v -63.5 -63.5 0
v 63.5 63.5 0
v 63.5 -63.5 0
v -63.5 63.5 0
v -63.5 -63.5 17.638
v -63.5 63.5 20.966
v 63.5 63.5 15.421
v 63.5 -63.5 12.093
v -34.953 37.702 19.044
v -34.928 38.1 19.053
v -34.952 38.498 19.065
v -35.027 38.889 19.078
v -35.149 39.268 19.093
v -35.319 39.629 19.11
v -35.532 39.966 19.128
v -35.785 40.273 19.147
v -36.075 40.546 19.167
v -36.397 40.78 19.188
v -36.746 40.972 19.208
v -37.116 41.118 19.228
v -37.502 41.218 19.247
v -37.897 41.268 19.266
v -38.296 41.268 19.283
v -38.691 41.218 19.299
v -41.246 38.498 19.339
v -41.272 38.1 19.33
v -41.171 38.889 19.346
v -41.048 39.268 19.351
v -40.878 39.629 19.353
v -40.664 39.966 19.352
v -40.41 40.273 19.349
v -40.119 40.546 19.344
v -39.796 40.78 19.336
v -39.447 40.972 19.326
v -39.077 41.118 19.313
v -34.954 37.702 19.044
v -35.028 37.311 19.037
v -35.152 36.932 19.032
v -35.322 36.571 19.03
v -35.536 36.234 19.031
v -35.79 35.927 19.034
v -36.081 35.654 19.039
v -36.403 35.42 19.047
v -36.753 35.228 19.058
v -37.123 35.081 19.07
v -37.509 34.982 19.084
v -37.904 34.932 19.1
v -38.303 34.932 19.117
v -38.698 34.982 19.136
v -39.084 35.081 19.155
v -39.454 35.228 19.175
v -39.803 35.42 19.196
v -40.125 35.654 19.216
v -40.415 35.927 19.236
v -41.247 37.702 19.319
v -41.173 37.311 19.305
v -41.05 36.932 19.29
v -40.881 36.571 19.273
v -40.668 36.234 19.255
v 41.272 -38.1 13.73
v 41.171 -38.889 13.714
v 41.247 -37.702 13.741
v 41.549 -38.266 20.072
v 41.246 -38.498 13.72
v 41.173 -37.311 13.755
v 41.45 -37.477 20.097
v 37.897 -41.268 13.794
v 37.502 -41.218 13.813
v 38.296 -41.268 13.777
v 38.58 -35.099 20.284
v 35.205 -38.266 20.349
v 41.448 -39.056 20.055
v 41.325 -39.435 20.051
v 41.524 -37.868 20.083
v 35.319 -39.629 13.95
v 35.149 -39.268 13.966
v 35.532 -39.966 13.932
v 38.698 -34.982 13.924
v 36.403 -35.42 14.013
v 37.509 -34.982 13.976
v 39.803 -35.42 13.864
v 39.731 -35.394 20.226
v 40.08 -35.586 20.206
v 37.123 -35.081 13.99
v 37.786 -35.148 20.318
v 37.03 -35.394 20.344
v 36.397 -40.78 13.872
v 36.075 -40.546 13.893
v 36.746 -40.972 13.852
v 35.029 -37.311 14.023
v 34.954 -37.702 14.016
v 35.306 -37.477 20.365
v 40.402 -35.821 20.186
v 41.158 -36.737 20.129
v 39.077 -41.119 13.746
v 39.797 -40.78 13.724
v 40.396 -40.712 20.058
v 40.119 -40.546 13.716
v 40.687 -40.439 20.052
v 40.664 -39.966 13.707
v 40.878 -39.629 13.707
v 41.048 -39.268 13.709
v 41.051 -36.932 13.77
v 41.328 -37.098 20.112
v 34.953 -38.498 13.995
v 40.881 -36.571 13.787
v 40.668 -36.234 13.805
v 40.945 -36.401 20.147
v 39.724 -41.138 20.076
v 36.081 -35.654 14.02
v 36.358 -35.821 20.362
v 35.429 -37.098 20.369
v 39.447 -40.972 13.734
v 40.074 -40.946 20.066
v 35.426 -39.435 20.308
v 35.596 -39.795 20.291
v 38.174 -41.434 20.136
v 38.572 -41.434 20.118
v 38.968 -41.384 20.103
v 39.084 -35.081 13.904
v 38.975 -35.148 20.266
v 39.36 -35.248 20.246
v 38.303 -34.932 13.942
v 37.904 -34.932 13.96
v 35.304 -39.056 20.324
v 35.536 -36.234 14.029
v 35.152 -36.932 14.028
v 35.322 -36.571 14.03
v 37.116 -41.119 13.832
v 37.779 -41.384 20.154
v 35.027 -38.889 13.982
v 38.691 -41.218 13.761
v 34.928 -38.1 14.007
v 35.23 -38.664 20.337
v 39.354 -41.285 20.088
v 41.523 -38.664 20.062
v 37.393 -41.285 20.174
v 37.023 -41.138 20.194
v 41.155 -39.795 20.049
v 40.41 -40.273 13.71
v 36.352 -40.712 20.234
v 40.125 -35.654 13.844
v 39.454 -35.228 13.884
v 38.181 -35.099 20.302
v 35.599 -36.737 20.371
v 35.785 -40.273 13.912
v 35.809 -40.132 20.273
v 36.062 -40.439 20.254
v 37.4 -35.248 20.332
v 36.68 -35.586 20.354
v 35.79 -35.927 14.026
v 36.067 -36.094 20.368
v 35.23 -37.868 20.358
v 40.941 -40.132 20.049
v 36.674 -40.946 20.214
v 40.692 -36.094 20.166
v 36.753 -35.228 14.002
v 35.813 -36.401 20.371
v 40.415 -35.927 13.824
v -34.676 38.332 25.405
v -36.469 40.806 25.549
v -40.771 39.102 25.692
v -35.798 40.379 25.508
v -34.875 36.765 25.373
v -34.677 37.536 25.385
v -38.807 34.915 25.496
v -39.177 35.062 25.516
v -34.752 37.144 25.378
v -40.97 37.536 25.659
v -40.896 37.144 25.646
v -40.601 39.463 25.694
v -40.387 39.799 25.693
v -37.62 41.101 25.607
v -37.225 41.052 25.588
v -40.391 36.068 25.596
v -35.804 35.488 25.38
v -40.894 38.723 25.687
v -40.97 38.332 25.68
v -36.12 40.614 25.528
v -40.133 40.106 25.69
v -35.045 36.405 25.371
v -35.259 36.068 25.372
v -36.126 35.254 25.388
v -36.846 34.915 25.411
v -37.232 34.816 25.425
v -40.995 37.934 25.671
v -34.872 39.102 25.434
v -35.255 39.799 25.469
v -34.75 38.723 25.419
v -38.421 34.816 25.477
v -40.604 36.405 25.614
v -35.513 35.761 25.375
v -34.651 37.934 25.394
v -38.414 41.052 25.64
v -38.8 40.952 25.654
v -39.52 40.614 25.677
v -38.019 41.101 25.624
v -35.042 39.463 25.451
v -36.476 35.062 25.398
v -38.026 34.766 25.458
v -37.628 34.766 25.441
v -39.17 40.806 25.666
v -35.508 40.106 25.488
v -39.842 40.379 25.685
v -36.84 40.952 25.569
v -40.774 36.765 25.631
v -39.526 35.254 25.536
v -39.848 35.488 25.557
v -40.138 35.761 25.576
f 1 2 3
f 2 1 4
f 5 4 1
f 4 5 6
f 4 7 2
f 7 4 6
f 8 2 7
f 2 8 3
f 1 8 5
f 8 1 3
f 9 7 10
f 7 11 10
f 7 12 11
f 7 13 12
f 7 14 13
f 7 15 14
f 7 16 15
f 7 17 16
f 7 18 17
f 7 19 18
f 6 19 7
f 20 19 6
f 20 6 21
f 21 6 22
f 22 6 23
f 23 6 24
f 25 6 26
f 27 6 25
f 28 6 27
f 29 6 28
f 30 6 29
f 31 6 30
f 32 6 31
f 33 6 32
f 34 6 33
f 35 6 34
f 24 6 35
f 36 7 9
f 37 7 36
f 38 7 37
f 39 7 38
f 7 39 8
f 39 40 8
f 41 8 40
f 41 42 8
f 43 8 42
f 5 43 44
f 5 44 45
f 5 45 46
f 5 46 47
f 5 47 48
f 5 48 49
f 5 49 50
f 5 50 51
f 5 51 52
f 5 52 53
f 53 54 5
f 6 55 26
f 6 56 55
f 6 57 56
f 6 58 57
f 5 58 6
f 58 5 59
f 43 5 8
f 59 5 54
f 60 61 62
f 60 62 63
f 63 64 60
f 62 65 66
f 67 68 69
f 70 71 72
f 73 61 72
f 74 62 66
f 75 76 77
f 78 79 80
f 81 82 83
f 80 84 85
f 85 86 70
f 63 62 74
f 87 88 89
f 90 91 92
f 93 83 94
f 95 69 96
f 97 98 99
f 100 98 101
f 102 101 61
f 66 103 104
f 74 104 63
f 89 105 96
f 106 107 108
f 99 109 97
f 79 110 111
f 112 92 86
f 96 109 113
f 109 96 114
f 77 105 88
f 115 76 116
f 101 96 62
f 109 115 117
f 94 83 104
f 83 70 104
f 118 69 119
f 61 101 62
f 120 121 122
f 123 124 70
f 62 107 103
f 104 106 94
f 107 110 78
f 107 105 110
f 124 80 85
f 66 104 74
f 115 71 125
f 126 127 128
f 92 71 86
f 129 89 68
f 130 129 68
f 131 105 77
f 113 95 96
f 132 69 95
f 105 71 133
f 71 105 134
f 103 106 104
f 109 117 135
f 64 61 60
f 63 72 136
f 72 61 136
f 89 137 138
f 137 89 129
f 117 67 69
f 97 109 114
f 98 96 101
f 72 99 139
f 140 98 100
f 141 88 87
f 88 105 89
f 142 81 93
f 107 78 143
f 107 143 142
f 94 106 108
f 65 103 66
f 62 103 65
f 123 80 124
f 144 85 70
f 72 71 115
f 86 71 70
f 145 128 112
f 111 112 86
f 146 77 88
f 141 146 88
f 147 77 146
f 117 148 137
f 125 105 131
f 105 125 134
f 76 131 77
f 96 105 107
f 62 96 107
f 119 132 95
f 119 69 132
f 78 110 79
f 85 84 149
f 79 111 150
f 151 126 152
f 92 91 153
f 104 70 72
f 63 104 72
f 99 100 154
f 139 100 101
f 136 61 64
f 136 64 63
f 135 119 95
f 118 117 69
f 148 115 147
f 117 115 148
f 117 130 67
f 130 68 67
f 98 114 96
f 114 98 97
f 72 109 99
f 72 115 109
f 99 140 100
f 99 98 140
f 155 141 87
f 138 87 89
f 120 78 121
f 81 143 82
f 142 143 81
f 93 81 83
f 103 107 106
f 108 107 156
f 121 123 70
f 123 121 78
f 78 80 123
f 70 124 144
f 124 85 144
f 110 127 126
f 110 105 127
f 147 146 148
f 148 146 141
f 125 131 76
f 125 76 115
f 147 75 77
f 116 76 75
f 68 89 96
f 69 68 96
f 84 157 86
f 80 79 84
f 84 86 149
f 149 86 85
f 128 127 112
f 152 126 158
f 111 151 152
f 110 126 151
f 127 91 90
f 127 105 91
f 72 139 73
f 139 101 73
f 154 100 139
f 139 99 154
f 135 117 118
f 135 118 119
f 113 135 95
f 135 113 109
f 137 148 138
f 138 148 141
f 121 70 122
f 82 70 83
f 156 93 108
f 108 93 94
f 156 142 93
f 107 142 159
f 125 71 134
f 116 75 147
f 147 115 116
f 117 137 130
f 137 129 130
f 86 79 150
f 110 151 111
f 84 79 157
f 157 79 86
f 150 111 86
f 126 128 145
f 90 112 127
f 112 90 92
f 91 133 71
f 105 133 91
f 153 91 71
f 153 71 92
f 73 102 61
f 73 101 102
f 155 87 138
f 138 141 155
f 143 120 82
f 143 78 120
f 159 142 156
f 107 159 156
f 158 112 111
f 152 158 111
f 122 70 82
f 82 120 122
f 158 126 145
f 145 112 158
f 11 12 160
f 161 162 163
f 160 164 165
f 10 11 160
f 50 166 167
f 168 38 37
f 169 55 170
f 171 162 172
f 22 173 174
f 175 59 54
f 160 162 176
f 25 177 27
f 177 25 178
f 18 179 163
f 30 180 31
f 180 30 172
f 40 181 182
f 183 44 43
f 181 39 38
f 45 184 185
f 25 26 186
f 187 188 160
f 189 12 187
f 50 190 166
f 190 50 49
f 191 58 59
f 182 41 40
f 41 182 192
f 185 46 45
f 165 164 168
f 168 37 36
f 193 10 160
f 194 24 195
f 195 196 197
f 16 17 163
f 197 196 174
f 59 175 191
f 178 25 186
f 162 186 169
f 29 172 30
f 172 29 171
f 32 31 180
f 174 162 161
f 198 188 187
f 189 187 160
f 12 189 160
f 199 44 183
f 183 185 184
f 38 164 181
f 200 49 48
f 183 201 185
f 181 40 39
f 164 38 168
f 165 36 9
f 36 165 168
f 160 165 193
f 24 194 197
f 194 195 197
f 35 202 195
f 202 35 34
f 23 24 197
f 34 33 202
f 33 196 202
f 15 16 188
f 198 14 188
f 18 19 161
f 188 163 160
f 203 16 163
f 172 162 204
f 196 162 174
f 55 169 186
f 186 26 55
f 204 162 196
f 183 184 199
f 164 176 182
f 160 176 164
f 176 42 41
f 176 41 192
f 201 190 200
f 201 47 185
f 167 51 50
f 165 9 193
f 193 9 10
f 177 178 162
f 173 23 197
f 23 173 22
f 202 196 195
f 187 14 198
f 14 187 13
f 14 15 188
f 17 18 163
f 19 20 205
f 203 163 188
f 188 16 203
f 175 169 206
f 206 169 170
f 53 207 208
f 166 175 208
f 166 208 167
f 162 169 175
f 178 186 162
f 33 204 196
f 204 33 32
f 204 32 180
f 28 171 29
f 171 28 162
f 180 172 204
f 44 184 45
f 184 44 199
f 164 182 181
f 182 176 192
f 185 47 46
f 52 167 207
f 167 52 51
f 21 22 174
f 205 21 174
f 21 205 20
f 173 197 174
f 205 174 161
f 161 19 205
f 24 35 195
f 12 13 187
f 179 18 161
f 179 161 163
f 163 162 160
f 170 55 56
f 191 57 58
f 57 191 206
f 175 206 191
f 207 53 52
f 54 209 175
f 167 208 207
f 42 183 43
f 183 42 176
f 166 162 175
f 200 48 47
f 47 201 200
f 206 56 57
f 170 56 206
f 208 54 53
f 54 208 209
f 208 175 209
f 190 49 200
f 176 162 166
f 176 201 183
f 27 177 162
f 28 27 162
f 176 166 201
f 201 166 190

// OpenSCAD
// Interlocking QA plate, v1.
//
// This code builds a 3D model that can be 3D printed or machined.
//

function in_to_mm(x) = x * 25.4;

x_slope = 1.5; // Degrees.
y_slope = 2.5; // Degrees.

base_width = in_to_mm(10.0);
base_height = in_to_mm(1.0);

// The drop at the centre of the cube (along [0,0,1]) due to the x and y slopes.
z_drop = (base_width * 0.5) * tan(x_slope) 
       + (base_width * 0.5) * tan(y_slope);

union() {

difference() {
    // The base cube.
    translate([0, 0, 0])
      linear_extrude(height = base_height)
          square([base_width*0.5, base_width*0.5], center = true);

    // The part at the top being subtracted off.
    translate([0, 0, base_height - z_drop])
      rotate([x_slope, y_slope, 0.0])
        linear_extrude(height = base_height*10.0)
          square([base_width*10.0, base_width*10.0], center = true);

}

translate([0, 0, base_height - z_drop
                             - ( in_to_mm(1.5) * tan(x_slope)
                               + in_to_mm(1.5) * tan(y_slope) ) ])
translate([in_to_mm(1.5), -in_to_mm(1.5)])
rotate([x_slope, y_slope, 0.0])
linear_extrude(height = in_to_mm(0.25))
circle(d=in_to_mm(0.25), $fn=50);

translate([0, 0, base_height - z_drop
                             + ( in_to_mm(1.5) * tan(x_slope)
                               + in_to_mm(1.5) * tan(y_slope) ) ])
translate([-in_to_mm(1.5), in_to_mm(1.5)])
rotate([x_slope, y_slope, 0.0])
linear_extrude(height = in_to_mm(0.25))
circle(d=in_to_mm(0.25), $fn=50);

}
